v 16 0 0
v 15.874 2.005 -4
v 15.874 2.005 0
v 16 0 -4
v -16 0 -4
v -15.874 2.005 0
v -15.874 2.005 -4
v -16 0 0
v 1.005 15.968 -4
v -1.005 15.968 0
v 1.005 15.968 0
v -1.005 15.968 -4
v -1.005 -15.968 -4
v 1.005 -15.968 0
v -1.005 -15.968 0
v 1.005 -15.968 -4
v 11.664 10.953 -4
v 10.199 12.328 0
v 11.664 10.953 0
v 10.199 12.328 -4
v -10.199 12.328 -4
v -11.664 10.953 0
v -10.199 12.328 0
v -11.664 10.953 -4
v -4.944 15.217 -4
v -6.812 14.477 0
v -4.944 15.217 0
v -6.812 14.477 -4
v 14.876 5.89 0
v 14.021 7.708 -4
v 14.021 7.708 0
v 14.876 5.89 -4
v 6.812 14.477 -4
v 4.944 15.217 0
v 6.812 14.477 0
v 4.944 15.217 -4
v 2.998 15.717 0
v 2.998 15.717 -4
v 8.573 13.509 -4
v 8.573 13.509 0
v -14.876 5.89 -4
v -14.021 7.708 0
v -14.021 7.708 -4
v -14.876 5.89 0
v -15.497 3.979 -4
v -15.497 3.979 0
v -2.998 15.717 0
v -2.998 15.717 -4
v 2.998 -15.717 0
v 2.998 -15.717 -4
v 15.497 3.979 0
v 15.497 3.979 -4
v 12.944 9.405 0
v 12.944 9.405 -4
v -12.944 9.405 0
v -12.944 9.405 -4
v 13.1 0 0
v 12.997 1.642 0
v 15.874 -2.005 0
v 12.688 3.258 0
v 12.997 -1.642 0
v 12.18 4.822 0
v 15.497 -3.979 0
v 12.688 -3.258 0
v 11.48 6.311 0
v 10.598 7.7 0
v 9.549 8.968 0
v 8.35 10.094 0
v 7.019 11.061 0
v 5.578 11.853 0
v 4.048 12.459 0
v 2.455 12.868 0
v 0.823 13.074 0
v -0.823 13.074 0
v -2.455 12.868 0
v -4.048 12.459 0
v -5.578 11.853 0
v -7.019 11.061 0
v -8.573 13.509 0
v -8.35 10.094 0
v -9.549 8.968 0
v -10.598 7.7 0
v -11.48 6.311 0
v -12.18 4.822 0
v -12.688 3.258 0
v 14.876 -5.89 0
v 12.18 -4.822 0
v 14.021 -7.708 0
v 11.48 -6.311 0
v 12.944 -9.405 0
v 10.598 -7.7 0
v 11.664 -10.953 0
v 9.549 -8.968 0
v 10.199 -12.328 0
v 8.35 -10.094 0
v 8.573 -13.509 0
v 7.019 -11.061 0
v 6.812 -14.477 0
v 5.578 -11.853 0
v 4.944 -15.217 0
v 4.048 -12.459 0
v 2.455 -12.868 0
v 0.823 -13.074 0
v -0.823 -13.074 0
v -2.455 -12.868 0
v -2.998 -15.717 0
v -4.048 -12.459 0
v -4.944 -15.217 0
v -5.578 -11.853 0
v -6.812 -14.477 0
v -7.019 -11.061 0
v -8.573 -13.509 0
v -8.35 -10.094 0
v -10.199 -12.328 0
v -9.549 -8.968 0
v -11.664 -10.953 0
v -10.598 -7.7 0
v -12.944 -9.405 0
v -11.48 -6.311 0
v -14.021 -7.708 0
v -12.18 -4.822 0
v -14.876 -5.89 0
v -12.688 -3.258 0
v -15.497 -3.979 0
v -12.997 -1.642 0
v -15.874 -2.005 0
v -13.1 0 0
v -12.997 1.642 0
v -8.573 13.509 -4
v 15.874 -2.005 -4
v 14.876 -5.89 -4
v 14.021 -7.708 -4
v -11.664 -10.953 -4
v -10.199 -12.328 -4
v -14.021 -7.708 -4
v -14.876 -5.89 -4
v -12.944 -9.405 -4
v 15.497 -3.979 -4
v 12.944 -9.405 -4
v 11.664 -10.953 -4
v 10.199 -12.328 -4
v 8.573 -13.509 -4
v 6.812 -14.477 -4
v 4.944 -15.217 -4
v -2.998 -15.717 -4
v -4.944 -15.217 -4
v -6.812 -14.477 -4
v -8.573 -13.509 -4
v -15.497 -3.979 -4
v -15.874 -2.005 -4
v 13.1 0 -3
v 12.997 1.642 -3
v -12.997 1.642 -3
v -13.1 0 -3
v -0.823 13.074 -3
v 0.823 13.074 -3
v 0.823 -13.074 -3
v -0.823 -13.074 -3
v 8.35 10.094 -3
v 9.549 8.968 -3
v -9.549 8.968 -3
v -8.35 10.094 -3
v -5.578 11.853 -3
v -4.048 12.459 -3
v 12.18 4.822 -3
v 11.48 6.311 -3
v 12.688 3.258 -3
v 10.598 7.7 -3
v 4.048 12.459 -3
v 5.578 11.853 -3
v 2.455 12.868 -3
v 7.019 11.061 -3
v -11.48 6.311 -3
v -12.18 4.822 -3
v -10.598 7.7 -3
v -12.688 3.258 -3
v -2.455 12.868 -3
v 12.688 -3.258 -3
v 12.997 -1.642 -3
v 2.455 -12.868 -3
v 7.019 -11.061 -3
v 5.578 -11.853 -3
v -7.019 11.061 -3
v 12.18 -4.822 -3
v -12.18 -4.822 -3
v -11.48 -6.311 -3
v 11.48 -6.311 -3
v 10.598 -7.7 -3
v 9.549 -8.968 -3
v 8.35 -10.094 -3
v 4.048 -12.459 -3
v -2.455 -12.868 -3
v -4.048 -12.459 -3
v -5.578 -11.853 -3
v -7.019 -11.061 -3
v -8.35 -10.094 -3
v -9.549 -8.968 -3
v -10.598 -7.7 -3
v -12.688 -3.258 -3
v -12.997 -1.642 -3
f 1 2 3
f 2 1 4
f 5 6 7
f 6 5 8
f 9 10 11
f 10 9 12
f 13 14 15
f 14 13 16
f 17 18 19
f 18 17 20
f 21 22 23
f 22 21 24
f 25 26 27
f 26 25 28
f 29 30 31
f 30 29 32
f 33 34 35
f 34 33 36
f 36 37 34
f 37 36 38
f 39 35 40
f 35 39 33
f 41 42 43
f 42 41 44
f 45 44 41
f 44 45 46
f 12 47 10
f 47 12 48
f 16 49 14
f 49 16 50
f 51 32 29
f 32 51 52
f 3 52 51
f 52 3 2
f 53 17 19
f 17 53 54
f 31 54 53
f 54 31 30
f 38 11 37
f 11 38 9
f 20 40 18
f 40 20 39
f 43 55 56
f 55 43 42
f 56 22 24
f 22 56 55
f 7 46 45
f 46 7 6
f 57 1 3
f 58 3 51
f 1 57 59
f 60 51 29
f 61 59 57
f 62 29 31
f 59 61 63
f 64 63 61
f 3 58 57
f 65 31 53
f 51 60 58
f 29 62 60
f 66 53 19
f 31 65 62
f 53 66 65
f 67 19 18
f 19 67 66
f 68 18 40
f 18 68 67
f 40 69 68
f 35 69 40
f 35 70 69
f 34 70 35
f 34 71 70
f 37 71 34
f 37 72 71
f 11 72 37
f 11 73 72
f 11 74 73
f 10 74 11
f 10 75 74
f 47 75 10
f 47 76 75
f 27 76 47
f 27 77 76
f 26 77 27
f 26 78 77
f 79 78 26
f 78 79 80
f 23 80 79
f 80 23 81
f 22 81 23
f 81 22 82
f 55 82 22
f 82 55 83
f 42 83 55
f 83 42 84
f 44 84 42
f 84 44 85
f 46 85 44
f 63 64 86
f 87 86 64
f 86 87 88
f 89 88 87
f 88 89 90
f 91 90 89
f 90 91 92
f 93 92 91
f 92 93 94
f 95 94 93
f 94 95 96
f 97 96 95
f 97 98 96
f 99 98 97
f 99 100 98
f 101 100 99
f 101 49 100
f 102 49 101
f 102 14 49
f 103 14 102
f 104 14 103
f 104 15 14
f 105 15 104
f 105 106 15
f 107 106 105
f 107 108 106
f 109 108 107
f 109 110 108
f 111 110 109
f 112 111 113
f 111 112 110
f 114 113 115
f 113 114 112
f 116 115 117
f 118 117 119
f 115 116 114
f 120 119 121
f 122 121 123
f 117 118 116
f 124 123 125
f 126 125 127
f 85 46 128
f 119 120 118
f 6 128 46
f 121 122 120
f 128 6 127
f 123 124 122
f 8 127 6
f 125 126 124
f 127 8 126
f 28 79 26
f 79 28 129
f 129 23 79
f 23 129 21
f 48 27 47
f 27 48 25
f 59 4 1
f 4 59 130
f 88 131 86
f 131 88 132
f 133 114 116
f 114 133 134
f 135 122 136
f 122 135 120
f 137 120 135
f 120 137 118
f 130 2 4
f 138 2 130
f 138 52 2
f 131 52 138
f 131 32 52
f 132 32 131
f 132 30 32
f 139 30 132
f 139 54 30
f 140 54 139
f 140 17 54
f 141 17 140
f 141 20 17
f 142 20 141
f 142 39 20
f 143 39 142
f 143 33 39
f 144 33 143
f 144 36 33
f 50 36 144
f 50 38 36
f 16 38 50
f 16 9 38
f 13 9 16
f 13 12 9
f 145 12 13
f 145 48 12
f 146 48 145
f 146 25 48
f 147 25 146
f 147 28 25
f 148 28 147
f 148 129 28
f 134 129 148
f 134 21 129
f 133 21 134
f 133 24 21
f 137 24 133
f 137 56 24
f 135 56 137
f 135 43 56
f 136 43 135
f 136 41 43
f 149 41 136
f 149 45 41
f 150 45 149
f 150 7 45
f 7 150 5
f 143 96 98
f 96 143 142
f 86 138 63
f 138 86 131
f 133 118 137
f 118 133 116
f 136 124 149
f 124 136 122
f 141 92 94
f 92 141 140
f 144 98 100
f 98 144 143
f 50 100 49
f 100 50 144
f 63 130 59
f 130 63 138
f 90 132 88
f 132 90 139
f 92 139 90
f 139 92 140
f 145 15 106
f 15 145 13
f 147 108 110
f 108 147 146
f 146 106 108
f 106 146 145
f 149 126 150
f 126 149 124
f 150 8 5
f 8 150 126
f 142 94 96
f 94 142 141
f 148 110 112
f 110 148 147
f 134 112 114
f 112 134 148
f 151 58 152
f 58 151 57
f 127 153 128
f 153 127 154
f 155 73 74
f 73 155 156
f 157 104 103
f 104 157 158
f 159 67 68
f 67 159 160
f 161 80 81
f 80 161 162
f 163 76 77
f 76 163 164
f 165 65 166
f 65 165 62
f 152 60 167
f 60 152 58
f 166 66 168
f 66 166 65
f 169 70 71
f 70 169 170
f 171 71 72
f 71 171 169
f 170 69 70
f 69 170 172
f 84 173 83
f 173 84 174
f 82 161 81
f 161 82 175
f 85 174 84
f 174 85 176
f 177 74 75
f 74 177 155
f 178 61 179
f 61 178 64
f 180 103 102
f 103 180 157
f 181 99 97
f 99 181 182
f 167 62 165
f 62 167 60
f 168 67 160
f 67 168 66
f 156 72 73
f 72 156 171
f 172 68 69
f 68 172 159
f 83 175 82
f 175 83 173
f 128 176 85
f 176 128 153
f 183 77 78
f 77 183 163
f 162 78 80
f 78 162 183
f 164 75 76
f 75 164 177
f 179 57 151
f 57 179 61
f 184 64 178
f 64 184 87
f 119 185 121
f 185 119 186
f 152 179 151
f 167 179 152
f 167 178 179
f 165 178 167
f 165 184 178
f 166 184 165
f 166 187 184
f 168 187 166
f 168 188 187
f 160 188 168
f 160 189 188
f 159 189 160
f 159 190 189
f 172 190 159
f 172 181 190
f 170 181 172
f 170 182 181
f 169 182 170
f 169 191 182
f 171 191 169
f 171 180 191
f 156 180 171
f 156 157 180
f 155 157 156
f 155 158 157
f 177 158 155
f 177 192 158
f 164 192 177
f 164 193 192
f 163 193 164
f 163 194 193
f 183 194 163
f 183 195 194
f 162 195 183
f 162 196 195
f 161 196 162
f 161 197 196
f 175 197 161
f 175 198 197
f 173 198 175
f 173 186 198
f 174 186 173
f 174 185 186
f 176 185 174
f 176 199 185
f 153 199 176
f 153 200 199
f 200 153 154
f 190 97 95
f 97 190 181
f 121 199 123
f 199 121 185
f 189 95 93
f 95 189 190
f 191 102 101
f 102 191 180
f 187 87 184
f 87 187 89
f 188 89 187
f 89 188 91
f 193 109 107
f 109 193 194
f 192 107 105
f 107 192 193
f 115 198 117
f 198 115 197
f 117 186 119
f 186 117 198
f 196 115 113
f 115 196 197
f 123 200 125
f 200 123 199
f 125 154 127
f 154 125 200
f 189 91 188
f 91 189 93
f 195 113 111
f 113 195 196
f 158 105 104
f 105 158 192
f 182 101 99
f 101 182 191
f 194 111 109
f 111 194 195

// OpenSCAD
$fn = 50;


difference() {
	union() {
		translate(v = [0, 0, -4.0000000000]) {
			cylinder(h = 4, r = 16.0000000000);
		}
	}
	union() {
		#translate(v = [0, 0, -3.0000000000]) {
			cylinder(h = 3, r = 13.1000000000);
		}
	}
}
